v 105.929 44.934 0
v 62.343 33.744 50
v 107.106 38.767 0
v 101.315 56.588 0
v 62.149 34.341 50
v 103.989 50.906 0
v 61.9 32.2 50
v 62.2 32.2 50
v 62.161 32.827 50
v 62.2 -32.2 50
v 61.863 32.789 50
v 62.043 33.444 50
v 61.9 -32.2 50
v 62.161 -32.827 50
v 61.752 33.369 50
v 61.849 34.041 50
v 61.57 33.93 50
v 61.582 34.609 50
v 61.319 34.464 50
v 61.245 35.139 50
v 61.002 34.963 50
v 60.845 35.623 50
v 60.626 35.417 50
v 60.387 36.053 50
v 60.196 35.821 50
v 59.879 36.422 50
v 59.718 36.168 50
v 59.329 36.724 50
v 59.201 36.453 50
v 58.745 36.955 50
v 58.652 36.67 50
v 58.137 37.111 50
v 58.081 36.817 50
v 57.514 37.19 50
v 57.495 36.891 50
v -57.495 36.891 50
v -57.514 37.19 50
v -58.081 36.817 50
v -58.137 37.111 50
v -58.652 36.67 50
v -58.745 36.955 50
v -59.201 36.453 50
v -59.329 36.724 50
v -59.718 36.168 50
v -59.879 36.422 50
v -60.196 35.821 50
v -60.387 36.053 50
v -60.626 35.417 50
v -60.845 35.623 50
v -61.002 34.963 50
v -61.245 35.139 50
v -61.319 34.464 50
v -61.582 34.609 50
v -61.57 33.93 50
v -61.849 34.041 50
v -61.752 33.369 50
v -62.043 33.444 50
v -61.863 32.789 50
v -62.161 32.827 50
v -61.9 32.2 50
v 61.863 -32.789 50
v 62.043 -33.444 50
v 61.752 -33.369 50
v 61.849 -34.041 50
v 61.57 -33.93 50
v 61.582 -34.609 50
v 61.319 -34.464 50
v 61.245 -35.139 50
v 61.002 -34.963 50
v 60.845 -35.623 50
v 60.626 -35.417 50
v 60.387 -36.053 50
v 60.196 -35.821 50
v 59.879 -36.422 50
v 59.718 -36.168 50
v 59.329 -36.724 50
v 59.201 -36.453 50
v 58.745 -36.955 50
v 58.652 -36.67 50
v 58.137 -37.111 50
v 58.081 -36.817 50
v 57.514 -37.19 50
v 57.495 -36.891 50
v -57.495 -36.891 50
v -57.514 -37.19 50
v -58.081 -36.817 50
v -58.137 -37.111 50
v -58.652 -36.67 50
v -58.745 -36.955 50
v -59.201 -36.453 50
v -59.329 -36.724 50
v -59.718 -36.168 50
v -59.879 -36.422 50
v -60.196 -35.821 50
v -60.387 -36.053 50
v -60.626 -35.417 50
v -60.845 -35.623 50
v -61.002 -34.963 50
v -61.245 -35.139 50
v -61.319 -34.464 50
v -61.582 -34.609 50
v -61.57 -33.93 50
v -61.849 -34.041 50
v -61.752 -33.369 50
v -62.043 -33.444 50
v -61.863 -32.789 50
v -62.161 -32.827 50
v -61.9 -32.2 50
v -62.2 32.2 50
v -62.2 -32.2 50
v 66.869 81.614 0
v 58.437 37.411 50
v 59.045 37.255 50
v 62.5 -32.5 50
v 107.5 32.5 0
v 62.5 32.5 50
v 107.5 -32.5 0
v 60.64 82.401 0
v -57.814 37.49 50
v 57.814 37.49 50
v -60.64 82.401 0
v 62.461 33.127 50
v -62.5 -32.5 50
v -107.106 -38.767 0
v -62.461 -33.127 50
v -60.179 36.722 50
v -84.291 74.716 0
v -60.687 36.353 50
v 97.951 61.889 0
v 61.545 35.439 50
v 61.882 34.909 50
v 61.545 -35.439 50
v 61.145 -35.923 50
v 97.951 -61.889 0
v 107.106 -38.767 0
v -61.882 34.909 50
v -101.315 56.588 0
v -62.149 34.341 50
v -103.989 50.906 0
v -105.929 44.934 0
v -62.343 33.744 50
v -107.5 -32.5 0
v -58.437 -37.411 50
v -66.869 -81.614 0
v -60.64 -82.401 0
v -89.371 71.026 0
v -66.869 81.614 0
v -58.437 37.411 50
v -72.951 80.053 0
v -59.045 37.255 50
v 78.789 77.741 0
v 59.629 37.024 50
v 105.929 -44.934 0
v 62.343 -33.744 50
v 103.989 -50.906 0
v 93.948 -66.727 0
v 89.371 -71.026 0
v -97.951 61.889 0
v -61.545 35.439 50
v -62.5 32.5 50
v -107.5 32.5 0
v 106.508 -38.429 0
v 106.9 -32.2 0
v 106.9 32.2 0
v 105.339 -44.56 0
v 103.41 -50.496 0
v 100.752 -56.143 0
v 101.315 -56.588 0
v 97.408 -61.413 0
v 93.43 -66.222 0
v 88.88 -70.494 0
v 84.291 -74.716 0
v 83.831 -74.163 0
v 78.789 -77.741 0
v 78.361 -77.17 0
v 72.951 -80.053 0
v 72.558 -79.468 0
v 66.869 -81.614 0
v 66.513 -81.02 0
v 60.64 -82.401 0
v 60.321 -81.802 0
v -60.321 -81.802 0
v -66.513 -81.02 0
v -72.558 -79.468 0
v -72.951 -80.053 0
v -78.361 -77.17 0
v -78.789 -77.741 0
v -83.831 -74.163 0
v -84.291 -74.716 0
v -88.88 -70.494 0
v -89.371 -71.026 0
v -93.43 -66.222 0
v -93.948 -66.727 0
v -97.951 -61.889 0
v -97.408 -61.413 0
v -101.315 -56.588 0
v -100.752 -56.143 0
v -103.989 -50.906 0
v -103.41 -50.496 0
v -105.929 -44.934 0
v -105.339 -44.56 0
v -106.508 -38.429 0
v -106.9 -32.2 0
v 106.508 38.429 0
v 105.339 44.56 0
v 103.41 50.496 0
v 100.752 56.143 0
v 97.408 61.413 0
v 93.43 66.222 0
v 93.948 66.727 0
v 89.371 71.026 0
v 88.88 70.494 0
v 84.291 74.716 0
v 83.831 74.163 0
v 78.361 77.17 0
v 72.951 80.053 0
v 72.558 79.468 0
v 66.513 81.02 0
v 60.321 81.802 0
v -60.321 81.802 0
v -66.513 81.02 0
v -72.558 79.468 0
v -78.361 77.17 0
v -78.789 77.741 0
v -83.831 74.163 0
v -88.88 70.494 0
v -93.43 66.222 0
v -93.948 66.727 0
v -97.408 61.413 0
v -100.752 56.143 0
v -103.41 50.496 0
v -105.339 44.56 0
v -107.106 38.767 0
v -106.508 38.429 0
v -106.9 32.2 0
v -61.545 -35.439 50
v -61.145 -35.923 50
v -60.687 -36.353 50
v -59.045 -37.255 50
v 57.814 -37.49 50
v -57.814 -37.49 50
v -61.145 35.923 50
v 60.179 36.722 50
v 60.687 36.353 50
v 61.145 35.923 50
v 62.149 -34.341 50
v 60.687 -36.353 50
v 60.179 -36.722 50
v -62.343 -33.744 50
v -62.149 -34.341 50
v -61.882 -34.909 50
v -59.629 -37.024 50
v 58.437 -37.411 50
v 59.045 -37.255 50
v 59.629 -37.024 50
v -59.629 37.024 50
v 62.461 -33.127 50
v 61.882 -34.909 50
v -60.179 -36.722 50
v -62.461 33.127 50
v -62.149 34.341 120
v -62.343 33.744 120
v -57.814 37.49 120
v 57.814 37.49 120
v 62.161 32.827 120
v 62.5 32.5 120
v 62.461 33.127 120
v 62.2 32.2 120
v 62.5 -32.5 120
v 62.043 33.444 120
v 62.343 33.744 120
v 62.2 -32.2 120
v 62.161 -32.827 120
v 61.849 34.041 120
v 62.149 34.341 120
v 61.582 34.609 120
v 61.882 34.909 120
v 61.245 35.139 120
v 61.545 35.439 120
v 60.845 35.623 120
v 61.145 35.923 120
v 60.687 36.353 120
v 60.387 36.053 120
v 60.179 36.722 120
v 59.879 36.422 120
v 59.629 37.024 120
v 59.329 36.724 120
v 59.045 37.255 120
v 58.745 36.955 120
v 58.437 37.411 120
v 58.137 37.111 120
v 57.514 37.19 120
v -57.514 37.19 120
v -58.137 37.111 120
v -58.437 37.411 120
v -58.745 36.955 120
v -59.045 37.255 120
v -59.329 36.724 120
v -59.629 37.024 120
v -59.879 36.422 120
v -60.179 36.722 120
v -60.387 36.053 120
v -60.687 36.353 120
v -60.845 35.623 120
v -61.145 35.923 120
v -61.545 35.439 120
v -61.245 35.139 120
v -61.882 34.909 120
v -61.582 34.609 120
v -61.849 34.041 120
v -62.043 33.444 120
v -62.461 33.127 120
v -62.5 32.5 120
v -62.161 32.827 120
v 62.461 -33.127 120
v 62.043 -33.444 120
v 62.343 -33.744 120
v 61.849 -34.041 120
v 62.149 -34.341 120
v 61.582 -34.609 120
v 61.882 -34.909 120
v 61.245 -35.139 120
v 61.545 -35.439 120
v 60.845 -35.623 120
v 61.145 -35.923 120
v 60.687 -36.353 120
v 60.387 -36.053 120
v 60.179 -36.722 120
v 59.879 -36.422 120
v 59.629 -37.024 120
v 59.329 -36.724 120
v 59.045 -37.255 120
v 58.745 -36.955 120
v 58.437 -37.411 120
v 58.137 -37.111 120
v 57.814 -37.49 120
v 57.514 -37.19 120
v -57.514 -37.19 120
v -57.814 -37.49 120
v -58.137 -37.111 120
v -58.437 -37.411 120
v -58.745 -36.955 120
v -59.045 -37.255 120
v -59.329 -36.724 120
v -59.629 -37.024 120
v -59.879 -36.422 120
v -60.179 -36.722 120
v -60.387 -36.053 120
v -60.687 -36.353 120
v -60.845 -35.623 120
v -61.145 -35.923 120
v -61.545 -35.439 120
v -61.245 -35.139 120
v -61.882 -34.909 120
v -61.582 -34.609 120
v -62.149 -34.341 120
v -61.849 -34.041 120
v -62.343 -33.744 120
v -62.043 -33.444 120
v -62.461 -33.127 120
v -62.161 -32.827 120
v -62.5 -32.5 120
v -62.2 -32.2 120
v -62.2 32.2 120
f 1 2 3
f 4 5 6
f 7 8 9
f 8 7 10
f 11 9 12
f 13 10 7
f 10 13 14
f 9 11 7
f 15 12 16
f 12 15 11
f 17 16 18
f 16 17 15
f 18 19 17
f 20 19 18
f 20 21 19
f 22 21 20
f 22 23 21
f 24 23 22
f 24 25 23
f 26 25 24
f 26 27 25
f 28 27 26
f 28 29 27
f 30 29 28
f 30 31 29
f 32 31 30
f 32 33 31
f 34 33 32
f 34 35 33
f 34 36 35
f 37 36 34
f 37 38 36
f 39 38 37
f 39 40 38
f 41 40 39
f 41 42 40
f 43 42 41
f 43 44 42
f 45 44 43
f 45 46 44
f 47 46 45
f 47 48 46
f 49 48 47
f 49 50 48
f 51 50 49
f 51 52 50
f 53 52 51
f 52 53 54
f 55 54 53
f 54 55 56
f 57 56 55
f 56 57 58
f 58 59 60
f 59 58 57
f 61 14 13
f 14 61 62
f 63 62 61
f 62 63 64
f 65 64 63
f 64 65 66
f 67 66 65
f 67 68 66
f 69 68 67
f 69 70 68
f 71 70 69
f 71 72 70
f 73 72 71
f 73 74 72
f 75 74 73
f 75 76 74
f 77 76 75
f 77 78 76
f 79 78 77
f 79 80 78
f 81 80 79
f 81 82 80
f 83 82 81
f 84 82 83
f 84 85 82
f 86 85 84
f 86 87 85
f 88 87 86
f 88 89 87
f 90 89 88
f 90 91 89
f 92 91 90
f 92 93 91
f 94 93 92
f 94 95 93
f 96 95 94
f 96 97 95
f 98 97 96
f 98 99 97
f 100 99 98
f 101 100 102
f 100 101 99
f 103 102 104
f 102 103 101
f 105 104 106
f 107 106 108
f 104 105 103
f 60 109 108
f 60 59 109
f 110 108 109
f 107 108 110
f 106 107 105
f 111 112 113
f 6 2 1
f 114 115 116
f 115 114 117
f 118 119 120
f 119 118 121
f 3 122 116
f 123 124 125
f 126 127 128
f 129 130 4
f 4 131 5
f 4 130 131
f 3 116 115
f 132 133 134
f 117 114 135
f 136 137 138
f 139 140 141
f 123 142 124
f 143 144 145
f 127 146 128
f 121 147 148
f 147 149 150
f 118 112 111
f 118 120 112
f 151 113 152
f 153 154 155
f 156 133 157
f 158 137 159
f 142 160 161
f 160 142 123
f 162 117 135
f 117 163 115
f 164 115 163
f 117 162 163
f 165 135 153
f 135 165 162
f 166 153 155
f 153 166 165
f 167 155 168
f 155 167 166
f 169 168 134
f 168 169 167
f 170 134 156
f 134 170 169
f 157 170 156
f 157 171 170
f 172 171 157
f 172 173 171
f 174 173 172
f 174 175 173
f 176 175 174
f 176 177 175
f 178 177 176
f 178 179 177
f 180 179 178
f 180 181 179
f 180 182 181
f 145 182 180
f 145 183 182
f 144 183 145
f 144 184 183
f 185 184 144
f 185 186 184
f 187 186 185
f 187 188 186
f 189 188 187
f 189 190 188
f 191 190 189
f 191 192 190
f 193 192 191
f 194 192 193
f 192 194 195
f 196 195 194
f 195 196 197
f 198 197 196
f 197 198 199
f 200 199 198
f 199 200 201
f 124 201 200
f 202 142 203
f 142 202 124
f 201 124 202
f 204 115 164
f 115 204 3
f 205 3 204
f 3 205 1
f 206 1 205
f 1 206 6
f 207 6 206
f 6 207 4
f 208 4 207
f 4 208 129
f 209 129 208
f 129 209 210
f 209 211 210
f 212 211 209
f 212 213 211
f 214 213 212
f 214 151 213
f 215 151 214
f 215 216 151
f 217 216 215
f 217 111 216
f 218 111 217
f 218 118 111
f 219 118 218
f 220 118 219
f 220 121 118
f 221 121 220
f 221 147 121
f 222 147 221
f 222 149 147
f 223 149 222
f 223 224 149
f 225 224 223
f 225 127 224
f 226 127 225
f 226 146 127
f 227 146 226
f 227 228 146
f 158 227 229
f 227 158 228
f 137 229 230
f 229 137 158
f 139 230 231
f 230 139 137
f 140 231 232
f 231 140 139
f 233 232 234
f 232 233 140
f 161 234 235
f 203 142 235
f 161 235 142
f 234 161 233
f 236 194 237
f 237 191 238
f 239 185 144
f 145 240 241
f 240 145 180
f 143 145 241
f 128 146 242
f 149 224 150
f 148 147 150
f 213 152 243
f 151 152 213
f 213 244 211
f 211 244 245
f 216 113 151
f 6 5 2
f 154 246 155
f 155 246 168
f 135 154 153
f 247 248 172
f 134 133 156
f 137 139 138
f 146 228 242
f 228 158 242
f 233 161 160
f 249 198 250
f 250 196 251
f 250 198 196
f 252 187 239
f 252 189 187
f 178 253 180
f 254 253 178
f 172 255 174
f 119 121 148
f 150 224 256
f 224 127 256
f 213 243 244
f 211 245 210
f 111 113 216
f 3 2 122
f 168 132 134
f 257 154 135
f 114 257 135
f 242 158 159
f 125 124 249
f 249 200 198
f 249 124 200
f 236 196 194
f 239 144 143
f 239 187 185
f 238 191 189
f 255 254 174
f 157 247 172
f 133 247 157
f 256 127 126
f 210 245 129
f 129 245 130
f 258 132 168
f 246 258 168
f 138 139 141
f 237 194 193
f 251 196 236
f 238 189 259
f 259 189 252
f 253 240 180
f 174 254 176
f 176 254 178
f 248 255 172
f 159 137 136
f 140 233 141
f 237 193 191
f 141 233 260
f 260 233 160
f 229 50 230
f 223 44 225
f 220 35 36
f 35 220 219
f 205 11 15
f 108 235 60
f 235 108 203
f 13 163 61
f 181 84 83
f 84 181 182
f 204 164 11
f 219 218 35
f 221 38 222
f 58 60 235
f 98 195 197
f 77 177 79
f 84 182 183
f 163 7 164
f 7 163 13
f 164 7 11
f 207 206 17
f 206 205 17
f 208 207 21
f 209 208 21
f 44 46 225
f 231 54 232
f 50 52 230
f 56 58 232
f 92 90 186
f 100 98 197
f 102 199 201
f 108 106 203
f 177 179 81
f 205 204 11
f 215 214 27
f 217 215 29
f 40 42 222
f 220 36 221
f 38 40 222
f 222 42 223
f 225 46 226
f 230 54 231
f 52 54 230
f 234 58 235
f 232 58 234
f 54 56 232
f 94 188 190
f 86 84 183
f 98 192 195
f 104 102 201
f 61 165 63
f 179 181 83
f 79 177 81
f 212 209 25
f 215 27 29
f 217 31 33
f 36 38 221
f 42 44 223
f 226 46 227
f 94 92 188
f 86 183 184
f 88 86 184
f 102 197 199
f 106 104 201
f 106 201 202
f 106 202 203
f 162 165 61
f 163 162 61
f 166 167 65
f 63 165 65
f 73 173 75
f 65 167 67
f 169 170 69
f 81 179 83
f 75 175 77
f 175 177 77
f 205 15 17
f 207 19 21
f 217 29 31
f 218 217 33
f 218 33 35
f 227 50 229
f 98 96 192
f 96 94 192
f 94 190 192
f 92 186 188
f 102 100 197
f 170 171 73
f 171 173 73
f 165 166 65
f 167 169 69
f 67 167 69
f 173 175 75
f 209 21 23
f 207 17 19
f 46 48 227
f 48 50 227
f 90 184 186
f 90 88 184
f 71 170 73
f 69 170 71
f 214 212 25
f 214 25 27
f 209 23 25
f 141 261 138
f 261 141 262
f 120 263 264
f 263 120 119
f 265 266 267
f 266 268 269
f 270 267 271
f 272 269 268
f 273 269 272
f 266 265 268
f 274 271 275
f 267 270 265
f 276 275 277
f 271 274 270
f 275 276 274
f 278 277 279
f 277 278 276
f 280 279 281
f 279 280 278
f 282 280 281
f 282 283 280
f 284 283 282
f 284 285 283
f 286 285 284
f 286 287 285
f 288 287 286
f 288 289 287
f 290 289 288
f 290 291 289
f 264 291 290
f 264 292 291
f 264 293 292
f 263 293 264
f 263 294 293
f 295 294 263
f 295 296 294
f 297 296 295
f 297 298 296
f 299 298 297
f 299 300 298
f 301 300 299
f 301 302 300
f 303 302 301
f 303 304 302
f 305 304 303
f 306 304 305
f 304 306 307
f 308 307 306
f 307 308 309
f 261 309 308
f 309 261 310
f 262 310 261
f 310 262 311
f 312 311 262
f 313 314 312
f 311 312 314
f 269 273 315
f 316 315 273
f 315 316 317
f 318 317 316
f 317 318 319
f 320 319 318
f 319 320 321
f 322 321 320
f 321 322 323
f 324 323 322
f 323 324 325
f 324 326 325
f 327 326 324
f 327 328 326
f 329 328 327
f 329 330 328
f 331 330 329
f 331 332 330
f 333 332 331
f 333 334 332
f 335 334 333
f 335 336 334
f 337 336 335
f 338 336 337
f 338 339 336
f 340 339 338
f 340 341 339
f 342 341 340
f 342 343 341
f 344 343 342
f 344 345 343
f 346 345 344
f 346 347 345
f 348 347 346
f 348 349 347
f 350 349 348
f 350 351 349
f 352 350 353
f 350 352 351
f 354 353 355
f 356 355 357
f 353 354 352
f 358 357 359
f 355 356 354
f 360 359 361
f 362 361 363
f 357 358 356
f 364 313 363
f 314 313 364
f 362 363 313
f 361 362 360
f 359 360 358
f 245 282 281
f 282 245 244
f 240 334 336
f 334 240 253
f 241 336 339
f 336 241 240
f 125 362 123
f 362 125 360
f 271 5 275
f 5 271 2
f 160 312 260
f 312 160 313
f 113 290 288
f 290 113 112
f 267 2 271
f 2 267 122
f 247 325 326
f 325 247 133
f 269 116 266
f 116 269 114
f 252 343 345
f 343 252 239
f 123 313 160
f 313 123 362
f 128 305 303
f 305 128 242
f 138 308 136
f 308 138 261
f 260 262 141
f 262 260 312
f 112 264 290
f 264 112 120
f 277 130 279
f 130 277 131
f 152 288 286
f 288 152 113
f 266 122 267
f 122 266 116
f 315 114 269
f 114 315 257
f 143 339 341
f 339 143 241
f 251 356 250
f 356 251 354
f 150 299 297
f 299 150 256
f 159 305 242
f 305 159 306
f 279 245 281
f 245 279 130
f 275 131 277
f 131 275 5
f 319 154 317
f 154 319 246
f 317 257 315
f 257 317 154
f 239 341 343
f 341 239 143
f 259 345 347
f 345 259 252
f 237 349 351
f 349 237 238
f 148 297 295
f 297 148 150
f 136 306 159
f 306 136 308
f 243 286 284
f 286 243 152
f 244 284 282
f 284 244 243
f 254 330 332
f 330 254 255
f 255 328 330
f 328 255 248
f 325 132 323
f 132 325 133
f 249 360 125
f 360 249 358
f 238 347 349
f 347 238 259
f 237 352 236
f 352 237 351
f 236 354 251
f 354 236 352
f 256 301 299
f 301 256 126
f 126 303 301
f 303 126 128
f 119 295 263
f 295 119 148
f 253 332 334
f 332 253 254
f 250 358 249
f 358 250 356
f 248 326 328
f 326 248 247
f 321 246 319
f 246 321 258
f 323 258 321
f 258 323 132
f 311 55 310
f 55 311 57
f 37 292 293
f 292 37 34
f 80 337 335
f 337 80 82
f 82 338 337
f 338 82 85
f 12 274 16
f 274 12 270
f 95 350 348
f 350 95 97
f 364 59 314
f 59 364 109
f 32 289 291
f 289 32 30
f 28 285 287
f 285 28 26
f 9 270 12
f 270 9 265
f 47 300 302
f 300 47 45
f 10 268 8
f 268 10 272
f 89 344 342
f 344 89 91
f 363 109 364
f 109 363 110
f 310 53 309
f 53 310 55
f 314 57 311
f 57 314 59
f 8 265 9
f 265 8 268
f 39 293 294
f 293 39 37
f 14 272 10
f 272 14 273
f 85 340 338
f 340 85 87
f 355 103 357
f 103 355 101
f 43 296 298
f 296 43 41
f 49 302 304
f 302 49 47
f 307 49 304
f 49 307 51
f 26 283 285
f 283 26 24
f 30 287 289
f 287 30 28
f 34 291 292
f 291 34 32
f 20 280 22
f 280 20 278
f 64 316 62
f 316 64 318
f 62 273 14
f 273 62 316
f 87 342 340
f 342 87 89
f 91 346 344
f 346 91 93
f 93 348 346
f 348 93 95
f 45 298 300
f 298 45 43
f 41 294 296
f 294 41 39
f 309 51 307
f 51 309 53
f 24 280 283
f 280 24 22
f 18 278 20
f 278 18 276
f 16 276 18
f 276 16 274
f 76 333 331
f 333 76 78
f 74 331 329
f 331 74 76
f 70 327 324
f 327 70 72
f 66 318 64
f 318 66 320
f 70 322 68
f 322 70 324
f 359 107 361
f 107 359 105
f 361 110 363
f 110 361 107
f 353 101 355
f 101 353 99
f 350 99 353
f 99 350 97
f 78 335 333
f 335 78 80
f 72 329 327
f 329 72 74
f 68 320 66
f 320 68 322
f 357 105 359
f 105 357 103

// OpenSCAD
$fn = 50;


difference() {
	union() {
		translate(v = [0, 0, 0]) {
			rotate(a = [0, 0, 0]) {
				difference() {
					union() {
						hull() {
							translate(v = [-57.5000000000, 32.5000000000, 0]) {
								cylinder(h = 50, r = 5, r1 = 50.0000000000, r2 = 5);
							}
							translate(v = [57.5000000000, 32.5000000000, 0]) {
								cylinder(h = 50, r = 5, r1 = 50.0000000000, r2 = 5);
							}
							translate(v = [-57.5000000000, -32.5000000000, 0]) {
								cylinder(h = 50, r = 5, r1 = 50.0000000000, r2 = 5);
							}
							translate(v = [57.5000000000, -32.5000000000, 0]) {
								cylinder(h = 50, r = 5, r1 = 50.0000000000, r2 = 5);
							}
						}
					}
					union() {
						hull() {
							translate(v = [-57.2000000000, 32.2000000000, 0]) {
								cylinder(h = 50, r = 5, r1 = 49.7000000000, r2 = 4.7000000000);
							}
							translate(v = [57.2000000000, 32.2000000000, 0]) {
								cylinder(h = 50, r = 5, r1 = 49.7000000000, r2 = 4.7000000000);
							}
							translate(v = [-57.2000000000, -32.2000000000, 0]) {
								cylinder(h = 50, r = 5, r1 = 49.7000000000, r2 = 4.7000000000);
							}
							translate(v = [57.2000000000, -32.2000000000, 0]) {
								cylinder(h = 50, r = 5, r1 = 49.7000000000, r2 = 4.7000000000);
							}
						}
					}
				}
			}
		}
		translate(v = [0, 0, 50]) {
			rotate(a = [0, 0, 0]) {
				difference() {
					union() {
						hull() {
							translate(v = [-57.5000000000, 32.5000000000, 0]) {
								cylinder(h = 70, r = 5);
							}
							translate(v = [57.5000000000, 32.5000000000, 0]) {
								cylinder(h = 70, r = 5);
							}
							translate(v = [-57.5000000000, -32.5000000000, 0]) {
								cylinder(h = 70, r = 5);
							}
							translate(v = [57.5000000000, -32.5000000000, 0]) {
								cylinder(h = 70, r = 5);
							}
						}
					}
					union() {
						hull() {
							translate(v = [-57.2000000000, 32.2000000000, 0]) {
								cylinder(h = 70, r = 5);
							}
							translate(v = [57.2000000000, 32.2000000000, 0]) {
								cylinder(h = 70, r = 5);
							}
							translate(v = [-57.2000000000, -32.2000000000, 0]) {
								cylinder(h = 70, r = 5);
							}
							translate(v = [57.2000000000, -32.2000000000, 0]) {
								cylinder(h = 70, r = 5);
							}
						}
					}
				}
			}
		}
	}
	union();
}
